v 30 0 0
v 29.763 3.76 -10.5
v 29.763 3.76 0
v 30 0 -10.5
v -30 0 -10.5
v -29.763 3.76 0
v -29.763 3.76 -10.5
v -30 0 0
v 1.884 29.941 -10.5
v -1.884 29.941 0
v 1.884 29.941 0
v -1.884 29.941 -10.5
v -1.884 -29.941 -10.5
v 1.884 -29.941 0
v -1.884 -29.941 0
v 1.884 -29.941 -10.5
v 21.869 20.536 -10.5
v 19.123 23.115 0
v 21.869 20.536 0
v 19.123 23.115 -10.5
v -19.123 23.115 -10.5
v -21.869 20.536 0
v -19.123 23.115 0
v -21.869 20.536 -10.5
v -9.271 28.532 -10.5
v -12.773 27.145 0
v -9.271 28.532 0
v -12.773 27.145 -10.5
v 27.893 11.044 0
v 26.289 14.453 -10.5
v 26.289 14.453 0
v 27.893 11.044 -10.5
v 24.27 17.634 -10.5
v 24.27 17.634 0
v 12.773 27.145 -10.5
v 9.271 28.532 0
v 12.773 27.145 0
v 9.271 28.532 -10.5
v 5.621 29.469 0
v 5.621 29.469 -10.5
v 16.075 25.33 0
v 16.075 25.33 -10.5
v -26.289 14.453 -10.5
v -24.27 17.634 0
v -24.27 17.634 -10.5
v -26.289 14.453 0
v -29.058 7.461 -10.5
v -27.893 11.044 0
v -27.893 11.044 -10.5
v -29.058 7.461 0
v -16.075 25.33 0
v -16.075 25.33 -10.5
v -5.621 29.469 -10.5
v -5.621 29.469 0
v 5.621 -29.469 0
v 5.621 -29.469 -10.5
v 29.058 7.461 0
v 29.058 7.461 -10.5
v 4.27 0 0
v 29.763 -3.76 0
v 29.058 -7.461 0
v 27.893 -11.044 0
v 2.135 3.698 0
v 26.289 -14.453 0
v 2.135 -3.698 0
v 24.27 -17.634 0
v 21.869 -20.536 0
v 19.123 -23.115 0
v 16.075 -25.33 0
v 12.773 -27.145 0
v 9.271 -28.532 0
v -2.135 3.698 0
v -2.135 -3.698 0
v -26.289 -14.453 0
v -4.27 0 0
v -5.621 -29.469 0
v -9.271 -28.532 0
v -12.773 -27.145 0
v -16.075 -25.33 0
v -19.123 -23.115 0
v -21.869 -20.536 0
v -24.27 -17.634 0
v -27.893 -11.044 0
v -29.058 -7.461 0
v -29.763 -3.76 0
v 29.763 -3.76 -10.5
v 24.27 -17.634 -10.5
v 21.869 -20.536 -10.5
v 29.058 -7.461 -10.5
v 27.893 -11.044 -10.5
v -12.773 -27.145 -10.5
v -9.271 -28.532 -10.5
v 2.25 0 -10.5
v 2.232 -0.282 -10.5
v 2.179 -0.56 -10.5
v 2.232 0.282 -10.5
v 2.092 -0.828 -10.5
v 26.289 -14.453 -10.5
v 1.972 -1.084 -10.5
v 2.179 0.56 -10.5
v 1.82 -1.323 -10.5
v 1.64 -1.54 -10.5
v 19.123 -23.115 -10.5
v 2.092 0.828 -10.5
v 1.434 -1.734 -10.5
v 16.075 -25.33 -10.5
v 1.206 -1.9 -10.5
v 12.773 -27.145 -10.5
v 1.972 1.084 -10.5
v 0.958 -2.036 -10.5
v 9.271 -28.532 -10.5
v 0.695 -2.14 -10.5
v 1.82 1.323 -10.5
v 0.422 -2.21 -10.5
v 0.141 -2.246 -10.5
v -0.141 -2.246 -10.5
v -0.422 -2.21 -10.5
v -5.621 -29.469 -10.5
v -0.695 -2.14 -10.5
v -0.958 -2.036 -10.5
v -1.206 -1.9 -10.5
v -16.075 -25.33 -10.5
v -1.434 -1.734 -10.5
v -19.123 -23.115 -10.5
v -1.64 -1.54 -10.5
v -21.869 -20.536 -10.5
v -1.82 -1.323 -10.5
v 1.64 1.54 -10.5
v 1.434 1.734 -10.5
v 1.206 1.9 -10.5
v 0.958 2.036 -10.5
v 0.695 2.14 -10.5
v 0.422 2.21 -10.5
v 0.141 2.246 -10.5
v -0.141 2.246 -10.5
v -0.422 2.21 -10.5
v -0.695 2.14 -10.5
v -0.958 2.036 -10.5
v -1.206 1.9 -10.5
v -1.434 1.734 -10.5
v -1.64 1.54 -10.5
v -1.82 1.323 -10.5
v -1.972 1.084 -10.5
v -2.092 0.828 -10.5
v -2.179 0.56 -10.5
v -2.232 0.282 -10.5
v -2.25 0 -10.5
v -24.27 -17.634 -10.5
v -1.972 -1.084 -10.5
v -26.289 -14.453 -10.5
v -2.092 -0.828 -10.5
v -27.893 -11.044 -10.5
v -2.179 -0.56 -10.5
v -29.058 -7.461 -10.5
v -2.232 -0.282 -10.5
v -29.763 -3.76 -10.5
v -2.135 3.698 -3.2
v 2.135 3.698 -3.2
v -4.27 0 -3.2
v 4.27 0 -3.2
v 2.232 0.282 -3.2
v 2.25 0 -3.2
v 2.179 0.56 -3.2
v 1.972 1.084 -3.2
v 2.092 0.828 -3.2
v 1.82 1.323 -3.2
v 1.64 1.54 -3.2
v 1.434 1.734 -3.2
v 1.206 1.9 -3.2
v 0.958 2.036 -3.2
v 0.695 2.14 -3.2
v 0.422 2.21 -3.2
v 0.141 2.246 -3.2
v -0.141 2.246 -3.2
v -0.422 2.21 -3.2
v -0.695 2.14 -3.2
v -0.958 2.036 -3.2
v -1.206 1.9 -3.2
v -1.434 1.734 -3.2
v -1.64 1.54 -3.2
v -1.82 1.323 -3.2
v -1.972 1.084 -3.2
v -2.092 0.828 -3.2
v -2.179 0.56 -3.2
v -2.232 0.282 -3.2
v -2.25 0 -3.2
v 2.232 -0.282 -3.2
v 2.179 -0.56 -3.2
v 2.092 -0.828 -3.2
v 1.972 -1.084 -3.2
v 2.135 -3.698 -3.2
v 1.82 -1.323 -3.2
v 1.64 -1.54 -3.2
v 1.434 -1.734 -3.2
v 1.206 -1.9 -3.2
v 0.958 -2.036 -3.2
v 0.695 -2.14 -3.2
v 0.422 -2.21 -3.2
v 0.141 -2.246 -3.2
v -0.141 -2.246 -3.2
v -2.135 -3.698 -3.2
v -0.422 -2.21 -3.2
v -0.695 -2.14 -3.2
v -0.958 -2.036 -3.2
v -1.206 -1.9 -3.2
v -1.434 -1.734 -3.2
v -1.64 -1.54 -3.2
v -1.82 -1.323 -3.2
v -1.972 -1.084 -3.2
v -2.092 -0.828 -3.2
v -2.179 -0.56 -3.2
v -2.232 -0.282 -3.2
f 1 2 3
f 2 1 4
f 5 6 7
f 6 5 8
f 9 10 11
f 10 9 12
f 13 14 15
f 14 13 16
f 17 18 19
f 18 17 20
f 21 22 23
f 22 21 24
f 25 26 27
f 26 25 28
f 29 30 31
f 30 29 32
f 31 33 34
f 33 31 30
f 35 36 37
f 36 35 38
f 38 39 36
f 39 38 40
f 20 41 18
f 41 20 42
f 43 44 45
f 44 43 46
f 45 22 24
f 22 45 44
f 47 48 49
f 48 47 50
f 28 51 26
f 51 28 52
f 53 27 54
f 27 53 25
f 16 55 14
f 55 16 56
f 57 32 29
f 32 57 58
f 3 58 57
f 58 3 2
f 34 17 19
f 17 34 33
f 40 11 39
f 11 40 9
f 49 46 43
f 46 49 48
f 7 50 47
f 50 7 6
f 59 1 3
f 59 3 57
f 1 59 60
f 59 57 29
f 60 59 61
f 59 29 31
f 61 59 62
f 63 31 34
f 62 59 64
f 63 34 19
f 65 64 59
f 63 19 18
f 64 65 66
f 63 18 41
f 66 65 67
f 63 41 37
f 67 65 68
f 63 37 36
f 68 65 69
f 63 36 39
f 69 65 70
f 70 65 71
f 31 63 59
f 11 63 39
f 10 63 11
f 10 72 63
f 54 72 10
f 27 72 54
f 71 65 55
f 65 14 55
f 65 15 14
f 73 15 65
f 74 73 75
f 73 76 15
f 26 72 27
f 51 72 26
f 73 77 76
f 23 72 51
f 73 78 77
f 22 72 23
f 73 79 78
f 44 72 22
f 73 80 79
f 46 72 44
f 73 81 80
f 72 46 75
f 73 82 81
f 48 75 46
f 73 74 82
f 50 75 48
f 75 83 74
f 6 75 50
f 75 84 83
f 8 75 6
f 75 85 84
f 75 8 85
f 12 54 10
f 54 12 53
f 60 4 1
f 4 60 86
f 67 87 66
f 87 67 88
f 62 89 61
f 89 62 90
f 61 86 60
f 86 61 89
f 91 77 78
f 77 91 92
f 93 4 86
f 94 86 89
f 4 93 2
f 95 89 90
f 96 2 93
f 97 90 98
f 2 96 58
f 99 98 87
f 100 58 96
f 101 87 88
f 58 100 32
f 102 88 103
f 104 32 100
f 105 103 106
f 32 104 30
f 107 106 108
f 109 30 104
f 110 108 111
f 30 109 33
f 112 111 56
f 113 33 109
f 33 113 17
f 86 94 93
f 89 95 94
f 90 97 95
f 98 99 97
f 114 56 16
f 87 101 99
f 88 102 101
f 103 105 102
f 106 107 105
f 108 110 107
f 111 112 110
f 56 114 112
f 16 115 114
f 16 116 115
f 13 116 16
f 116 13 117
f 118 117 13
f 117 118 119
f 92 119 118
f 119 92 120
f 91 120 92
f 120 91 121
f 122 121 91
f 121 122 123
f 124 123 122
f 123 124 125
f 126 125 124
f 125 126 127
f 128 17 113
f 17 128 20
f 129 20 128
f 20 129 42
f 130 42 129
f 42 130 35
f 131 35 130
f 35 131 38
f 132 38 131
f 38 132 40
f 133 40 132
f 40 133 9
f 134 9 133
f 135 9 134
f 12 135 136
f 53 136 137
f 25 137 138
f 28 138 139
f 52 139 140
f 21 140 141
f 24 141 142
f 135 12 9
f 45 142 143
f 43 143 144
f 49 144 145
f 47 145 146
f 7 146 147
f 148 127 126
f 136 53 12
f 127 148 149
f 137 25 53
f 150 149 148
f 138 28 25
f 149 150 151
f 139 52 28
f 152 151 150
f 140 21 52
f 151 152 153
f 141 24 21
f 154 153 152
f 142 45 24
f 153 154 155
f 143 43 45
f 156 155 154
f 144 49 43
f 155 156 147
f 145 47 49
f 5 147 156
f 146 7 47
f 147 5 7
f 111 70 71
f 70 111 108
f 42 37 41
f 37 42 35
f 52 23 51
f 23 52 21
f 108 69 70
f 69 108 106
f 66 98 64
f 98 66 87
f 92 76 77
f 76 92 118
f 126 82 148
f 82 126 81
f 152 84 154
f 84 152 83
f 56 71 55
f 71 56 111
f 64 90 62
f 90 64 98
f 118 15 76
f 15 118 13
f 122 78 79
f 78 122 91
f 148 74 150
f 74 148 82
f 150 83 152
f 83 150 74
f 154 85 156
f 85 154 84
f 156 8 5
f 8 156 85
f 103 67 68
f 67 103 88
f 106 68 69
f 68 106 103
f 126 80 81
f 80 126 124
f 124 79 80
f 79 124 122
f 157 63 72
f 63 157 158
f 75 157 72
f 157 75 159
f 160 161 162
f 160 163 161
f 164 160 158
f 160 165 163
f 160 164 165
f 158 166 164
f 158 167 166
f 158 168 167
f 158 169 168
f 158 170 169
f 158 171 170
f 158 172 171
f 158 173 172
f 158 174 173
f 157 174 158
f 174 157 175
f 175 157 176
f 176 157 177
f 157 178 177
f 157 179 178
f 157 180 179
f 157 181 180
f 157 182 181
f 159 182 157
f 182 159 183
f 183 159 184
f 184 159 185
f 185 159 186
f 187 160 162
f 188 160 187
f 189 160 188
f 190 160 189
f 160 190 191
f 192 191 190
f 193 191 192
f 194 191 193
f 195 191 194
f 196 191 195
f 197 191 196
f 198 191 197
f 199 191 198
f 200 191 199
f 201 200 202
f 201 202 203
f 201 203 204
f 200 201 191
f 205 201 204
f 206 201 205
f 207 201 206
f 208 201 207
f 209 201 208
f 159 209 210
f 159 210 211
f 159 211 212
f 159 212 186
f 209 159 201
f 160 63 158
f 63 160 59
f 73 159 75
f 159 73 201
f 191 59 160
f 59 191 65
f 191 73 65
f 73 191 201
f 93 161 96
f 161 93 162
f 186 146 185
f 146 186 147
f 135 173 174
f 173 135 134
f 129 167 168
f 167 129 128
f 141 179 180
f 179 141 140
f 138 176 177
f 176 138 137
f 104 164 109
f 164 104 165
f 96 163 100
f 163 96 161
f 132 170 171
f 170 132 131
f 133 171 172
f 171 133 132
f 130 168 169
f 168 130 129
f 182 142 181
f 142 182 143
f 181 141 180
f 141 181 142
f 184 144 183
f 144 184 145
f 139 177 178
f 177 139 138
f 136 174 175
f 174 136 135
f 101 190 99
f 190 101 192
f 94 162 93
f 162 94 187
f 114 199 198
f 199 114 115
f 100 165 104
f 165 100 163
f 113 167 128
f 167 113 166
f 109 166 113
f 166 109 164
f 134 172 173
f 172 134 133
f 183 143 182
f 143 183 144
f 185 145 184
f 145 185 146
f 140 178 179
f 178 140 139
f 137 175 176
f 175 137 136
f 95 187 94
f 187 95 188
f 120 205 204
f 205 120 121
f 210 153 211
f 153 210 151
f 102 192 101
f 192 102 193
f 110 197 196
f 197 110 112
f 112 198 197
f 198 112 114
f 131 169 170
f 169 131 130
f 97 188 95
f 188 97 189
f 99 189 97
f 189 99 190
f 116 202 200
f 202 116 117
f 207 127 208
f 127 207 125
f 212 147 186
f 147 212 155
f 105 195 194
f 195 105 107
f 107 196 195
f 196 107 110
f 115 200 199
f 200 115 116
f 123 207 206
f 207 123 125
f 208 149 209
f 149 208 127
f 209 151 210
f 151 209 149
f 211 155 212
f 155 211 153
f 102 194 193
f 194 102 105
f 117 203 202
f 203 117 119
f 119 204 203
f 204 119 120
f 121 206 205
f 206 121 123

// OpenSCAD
$fn = 50;


difference() {
	union() {
		translate(v = [0, 0, -10.5000000000]) {
			cylinder(h = 10.5000000000, r = 30.0000000000);
		}
		translate(v = [0, 0, -9.0000000000]) {
			cylinder(h = 9, r = 2.8750000000);
		}
	}
	union() {
		translate(v = [0, 0, 0]) {
			rotate(a = [0, 0, 0]) {
				difference() {
					union() {
						translate(v = [0, 0, -3.2000000000]) {
							#linear_extrude(height = 3.2000000000) {
								polygon(points = [[4.2698000000, 0.0000000000], [2.1349000000, 3.6977552691], [-2.1349000000, 3.6977552691], [-4.2698000000, 0.0000000000], [-2.1349000000, -3.6977552691], [2.1349000000, -3.6977552691]]);
							}
						}
					}
					union();
				}
			}
		}
		#translate(v = [0, 0, -100.0000000000]) {
			cylinder(h = 200, r = 2.2500000000);
		}
	}
}
